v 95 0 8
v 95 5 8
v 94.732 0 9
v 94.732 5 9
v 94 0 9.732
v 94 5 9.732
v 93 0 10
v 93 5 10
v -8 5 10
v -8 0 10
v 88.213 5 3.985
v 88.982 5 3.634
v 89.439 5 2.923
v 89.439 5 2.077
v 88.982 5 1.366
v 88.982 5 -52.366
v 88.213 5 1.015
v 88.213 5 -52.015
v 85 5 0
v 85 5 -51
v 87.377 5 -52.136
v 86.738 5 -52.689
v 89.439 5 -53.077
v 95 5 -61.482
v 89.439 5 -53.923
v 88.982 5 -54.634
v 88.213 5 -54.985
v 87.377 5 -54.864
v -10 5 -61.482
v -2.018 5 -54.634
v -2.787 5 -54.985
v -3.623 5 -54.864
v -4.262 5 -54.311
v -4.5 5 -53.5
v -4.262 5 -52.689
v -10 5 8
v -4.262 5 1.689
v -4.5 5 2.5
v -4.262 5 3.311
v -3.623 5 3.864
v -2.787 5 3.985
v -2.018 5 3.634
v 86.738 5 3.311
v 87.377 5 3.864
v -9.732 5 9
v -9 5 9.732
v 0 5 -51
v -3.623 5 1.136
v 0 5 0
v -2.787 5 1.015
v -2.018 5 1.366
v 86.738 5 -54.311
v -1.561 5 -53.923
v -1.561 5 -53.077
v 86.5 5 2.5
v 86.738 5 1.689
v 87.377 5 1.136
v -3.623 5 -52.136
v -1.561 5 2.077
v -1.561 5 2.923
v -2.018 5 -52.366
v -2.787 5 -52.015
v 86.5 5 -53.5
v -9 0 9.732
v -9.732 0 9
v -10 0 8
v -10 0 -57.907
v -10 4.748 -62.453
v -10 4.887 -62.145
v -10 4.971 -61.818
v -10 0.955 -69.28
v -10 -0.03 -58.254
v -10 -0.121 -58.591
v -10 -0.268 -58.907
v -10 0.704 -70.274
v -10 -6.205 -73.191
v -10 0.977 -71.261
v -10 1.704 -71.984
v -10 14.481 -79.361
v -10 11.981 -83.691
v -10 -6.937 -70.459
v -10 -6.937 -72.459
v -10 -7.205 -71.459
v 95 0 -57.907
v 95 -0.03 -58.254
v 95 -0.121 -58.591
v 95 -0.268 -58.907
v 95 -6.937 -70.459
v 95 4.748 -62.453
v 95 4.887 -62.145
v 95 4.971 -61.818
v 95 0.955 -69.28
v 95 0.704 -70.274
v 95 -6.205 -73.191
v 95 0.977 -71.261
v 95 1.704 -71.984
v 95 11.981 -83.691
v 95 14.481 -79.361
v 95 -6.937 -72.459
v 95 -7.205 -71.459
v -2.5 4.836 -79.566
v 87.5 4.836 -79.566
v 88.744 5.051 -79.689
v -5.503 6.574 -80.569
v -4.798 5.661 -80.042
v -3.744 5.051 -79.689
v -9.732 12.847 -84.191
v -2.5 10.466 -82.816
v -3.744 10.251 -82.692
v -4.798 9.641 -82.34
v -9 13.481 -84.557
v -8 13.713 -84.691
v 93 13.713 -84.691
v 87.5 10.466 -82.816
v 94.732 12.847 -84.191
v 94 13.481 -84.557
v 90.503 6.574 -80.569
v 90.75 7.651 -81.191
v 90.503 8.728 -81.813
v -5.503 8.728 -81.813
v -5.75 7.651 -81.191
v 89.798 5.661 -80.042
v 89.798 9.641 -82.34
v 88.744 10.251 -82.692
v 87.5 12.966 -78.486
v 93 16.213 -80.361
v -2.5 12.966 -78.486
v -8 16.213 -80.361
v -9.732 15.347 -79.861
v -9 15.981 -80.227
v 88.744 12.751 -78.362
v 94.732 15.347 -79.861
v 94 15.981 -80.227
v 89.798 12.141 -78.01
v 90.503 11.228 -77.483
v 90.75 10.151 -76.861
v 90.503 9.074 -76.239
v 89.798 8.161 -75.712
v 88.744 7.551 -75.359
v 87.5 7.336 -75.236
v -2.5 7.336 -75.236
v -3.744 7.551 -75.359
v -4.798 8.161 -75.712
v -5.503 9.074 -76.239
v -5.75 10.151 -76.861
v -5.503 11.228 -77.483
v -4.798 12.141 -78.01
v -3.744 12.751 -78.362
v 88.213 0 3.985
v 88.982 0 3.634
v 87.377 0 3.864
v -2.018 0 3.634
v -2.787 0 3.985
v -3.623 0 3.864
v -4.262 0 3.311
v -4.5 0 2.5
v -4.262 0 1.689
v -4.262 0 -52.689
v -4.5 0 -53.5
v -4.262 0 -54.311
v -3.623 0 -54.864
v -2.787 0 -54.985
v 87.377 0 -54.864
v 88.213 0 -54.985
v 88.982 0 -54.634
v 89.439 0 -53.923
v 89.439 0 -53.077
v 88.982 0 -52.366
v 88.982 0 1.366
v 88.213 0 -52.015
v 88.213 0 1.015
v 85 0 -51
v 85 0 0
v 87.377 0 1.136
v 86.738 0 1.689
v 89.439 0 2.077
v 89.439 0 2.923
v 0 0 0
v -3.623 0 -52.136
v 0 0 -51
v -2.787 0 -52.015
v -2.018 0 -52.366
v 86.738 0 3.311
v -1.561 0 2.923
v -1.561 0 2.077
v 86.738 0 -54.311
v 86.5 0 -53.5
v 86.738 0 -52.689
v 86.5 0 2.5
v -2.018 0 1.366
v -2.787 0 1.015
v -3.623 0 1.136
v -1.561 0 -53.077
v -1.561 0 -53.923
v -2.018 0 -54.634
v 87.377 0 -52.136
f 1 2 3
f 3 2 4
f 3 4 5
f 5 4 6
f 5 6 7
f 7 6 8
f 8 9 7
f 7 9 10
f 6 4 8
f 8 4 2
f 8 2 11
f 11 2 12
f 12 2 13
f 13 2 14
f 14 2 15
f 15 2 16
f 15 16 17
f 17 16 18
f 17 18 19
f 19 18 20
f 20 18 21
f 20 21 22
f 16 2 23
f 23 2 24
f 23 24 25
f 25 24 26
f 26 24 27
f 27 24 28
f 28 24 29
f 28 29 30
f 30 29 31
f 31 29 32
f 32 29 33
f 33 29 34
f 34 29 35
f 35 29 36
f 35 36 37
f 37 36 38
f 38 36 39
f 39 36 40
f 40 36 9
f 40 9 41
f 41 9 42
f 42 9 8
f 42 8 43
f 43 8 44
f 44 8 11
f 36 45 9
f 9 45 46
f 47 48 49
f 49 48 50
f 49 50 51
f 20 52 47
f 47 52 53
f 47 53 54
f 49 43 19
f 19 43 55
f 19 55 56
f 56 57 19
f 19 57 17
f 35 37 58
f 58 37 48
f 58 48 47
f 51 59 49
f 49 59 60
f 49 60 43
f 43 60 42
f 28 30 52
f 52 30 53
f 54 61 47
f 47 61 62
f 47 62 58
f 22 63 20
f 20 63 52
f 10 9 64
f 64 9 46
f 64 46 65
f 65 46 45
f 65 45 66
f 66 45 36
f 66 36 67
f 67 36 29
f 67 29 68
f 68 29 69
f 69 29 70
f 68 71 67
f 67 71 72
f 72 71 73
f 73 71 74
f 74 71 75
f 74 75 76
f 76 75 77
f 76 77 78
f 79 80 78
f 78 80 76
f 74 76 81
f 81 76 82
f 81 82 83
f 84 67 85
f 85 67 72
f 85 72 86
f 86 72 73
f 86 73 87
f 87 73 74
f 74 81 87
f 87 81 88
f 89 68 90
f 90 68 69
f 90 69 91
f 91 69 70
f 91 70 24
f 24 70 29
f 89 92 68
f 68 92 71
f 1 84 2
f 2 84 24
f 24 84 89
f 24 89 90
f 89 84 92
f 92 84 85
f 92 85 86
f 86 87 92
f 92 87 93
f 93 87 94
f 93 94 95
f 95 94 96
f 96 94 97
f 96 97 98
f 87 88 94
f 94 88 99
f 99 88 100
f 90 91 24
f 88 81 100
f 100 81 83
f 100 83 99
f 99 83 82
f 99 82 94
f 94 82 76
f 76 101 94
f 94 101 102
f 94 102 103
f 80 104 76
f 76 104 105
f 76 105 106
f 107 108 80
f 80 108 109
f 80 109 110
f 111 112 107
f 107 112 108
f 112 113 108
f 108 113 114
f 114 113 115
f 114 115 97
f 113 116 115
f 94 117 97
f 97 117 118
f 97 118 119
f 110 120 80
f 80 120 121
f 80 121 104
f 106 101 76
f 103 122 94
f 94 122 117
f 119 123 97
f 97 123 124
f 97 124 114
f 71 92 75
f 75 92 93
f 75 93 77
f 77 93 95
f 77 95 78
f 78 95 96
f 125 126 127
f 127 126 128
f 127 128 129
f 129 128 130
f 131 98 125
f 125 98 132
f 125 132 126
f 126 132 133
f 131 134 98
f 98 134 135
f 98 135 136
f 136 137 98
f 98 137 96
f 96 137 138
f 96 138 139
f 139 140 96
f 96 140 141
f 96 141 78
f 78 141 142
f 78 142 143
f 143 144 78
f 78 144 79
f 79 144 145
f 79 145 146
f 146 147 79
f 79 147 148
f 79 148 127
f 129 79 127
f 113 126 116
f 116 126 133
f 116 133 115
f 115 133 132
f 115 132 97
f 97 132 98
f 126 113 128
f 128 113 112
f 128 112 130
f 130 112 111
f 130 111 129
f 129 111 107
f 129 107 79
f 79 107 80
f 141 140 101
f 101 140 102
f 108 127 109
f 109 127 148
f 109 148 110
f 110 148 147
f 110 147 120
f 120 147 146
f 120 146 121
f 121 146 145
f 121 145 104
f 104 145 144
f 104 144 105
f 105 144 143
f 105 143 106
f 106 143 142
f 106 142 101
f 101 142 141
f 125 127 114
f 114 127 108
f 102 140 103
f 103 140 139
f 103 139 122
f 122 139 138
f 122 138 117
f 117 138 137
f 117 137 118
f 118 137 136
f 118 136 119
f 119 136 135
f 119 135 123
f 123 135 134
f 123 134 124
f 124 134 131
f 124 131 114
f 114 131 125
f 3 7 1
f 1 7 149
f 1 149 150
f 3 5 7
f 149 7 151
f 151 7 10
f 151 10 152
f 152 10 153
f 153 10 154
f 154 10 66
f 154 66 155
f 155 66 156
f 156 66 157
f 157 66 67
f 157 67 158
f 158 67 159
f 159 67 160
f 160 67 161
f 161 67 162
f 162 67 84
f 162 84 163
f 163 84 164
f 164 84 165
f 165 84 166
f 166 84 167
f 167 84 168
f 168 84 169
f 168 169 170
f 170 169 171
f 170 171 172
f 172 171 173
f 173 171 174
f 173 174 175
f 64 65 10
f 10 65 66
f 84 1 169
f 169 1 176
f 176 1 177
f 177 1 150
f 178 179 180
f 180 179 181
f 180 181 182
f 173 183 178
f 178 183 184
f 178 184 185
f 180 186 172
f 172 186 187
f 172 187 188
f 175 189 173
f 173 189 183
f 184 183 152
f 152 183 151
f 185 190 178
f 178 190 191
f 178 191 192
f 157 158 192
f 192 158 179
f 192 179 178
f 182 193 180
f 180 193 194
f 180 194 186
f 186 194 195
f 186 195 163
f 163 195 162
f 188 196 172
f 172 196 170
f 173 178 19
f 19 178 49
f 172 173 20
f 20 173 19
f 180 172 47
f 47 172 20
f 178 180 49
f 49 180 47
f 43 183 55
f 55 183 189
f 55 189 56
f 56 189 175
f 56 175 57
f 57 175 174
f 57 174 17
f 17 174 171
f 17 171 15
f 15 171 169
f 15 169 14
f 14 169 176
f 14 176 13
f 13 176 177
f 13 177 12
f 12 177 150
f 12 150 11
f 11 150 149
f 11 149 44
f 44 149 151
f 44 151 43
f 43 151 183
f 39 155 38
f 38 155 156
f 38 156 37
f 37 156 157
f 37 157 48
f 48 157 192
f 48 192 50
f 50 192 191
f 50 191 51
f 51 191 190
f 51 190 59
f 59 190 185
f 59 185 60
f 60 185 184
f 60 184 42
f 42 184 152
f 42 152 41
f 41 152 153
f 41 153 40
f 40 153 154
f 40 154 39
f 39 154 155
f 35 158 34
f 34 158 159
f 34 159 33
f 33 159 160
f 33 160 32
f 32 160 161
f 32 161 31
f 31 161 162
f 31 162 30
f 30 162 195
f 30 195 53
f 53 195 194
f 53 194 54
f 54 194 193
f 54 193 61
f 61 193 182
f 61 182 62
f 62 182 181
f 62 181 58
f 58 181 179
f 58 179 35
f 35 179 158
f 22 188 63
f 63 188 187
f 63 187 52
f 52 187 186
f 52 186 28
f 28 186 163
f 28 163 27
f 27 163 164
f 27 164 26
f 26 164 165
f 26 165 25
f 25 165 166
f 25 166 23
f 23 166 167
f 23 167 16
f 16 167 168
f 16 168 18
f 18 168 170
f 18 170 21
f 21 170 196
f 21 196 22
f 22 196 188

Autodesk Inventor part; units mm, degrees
ref_plane "YZ Plane" through (0, 0, 0) normal (1, 0, 0) x (0, 1, 0)
ref_plane "XZ Plane" through (0, 0, 0) normal (0, 1, 0) x (-1, 0, 0)
ref_plane "XY Plane" through (0, 0, 0) normal (0, 0, 1) x (1, 0, 0)
sketch "Sketch1" plane through (0, 0, 0) normal (0, 1, 0) x (-1, 0, 0)
  line L0 (0, 0) -> (-85, 0)
  line L1 (-85, 0) -> (-85, -51)
  line L2 (-85, -51) -> (0, -51)
  line L3 (0, -51) -> (0, 0)
  line L4 (10, -71) -> (-95, -71)
  line L5 (-95, -71) -> (-95, 10)
  line L6 (10, 10) -> (10, -71)
  line L7 (10, 10) -> (-95, 10)
  circle A0 centre (-88, -53.5) radius 1.5
  line L8 (-42.5, -71) -> (-42.5, 10) construction
  circle A1 centre (3, -53.5) radius 1.5
  line L9 (0, -25.5) -> (-85, -25.5) construction
  circle A2 centre (-88, 2.5) radius 1.5
  circle A3 centre (3, 2.5) radius 1.5
  dimension "d0" = 85
  dimension "d1" = 51
  dimension "d2" = 20
  dimension "d3" = 10
  dimension "d4" = 10
  dimension "d13" = 2.5
  dimension "d14" = 3
  dimension "d15" = 3
  dimension "d34" = 10
extrude "Extrusion1" add sketch "Sketch1" along normal blind 5
sketch "Sketch2" plane through (95, 0, 10) normal (1, 0, 0) x (0, 0, -1)
  line L0 (68, -22.5167) -> (68, 0) construction
  line L1 (82.1908, -7.9375) -> (94.6908, 13.7132)
  line L2 (0, 0) -> (81, 0) construction
  line L3 (81, 5) -> (81, 0)
  line L4 (94.6908, 13.7132) -> (90.3607, 16.2132)
  line L5 (90.3607, 16.2132) -> (81, 0)
  line L6 (68.4427, 0) -> (82.1908, -7.9375)
  line L7 (81, 0) -> (68.4427, 0)
  point P0 (10, 0)
  dimension "d16" = 30
  dimension "d18" = 13
  dimension "d26" = 5
  dimension "d33" = 45
  dimension "d37" = 25
extrude "Extrusion2" add sketch "Sketch2" against normal blind 105
sketch "Sketch3" plane through (95, -32.5167, -58) normal (0, -0.5, -0.866) x (-1, 0, 0)
  line L0 (7.5, 46.3816) -> (97.5, 46.3816) construction
  line L1 (7.5, 43.1316) -> (97.5, 43.1316)
  line L2 (97.5, 49.6316) -> (7.5, 49.6316)
  arc A0 (7.5, 49.6316) -> (7.5, 43.1316) centre (7.5, 46.3816) ccw
  arc A1 (97.5, 43.1316) -> (97.5, 49.6316) centre (97.5, 46.3816) ccw
  line L3 (0, 53.3816) -> (105, 53.3816) construction
  point P0 (95, -0.8397)
  point P1 (52.5, 46.3816)
  point P2 (52.5, 53.3816)
  point P3 (52.5, 53.3816)
  dimension "d21" = 6.5
  dimension "d22" = 90
  dimension "d23" = 7
extrude "Extrusion3" cut sketch "Sketch3" against normal through all
sketch "Sketch4" plane through (95, 0, 10) normal (1, 0, 0) x (0, 0, -1)
  line L0 (81, 0) -> (81, 5) projected
  line L1 (81, 0) -> (72, 5)
  line L2 (72, 5) -> (81, 5)
  line L3 (81, 5) -> (81, 0)
  point P0 (10, 0)
  dimension "d28" = 9
extrude "Extrusion4" cut sketch "Sketch4" against normal through all
fillet "Fillet3" radius 2 3 edges at (-10, 14.9632, -82.5257) (95, 14.9632, -82.5257) (42.5, 0, -71)
fillet "Fillet4" radius 2 1 edges at (42.5, -7.9375, -72.1908)
fillet "Fillet5" radius 2 2 edges at (42.5, 5, -62) (42.5, 0, -58.4427)
fillet "Fillet6" radius 2 2 edges at (-10, 2.5, 10) (95, 2.5, 10)
equation "\"d34\" = d4"
properties part number "screen mount"
